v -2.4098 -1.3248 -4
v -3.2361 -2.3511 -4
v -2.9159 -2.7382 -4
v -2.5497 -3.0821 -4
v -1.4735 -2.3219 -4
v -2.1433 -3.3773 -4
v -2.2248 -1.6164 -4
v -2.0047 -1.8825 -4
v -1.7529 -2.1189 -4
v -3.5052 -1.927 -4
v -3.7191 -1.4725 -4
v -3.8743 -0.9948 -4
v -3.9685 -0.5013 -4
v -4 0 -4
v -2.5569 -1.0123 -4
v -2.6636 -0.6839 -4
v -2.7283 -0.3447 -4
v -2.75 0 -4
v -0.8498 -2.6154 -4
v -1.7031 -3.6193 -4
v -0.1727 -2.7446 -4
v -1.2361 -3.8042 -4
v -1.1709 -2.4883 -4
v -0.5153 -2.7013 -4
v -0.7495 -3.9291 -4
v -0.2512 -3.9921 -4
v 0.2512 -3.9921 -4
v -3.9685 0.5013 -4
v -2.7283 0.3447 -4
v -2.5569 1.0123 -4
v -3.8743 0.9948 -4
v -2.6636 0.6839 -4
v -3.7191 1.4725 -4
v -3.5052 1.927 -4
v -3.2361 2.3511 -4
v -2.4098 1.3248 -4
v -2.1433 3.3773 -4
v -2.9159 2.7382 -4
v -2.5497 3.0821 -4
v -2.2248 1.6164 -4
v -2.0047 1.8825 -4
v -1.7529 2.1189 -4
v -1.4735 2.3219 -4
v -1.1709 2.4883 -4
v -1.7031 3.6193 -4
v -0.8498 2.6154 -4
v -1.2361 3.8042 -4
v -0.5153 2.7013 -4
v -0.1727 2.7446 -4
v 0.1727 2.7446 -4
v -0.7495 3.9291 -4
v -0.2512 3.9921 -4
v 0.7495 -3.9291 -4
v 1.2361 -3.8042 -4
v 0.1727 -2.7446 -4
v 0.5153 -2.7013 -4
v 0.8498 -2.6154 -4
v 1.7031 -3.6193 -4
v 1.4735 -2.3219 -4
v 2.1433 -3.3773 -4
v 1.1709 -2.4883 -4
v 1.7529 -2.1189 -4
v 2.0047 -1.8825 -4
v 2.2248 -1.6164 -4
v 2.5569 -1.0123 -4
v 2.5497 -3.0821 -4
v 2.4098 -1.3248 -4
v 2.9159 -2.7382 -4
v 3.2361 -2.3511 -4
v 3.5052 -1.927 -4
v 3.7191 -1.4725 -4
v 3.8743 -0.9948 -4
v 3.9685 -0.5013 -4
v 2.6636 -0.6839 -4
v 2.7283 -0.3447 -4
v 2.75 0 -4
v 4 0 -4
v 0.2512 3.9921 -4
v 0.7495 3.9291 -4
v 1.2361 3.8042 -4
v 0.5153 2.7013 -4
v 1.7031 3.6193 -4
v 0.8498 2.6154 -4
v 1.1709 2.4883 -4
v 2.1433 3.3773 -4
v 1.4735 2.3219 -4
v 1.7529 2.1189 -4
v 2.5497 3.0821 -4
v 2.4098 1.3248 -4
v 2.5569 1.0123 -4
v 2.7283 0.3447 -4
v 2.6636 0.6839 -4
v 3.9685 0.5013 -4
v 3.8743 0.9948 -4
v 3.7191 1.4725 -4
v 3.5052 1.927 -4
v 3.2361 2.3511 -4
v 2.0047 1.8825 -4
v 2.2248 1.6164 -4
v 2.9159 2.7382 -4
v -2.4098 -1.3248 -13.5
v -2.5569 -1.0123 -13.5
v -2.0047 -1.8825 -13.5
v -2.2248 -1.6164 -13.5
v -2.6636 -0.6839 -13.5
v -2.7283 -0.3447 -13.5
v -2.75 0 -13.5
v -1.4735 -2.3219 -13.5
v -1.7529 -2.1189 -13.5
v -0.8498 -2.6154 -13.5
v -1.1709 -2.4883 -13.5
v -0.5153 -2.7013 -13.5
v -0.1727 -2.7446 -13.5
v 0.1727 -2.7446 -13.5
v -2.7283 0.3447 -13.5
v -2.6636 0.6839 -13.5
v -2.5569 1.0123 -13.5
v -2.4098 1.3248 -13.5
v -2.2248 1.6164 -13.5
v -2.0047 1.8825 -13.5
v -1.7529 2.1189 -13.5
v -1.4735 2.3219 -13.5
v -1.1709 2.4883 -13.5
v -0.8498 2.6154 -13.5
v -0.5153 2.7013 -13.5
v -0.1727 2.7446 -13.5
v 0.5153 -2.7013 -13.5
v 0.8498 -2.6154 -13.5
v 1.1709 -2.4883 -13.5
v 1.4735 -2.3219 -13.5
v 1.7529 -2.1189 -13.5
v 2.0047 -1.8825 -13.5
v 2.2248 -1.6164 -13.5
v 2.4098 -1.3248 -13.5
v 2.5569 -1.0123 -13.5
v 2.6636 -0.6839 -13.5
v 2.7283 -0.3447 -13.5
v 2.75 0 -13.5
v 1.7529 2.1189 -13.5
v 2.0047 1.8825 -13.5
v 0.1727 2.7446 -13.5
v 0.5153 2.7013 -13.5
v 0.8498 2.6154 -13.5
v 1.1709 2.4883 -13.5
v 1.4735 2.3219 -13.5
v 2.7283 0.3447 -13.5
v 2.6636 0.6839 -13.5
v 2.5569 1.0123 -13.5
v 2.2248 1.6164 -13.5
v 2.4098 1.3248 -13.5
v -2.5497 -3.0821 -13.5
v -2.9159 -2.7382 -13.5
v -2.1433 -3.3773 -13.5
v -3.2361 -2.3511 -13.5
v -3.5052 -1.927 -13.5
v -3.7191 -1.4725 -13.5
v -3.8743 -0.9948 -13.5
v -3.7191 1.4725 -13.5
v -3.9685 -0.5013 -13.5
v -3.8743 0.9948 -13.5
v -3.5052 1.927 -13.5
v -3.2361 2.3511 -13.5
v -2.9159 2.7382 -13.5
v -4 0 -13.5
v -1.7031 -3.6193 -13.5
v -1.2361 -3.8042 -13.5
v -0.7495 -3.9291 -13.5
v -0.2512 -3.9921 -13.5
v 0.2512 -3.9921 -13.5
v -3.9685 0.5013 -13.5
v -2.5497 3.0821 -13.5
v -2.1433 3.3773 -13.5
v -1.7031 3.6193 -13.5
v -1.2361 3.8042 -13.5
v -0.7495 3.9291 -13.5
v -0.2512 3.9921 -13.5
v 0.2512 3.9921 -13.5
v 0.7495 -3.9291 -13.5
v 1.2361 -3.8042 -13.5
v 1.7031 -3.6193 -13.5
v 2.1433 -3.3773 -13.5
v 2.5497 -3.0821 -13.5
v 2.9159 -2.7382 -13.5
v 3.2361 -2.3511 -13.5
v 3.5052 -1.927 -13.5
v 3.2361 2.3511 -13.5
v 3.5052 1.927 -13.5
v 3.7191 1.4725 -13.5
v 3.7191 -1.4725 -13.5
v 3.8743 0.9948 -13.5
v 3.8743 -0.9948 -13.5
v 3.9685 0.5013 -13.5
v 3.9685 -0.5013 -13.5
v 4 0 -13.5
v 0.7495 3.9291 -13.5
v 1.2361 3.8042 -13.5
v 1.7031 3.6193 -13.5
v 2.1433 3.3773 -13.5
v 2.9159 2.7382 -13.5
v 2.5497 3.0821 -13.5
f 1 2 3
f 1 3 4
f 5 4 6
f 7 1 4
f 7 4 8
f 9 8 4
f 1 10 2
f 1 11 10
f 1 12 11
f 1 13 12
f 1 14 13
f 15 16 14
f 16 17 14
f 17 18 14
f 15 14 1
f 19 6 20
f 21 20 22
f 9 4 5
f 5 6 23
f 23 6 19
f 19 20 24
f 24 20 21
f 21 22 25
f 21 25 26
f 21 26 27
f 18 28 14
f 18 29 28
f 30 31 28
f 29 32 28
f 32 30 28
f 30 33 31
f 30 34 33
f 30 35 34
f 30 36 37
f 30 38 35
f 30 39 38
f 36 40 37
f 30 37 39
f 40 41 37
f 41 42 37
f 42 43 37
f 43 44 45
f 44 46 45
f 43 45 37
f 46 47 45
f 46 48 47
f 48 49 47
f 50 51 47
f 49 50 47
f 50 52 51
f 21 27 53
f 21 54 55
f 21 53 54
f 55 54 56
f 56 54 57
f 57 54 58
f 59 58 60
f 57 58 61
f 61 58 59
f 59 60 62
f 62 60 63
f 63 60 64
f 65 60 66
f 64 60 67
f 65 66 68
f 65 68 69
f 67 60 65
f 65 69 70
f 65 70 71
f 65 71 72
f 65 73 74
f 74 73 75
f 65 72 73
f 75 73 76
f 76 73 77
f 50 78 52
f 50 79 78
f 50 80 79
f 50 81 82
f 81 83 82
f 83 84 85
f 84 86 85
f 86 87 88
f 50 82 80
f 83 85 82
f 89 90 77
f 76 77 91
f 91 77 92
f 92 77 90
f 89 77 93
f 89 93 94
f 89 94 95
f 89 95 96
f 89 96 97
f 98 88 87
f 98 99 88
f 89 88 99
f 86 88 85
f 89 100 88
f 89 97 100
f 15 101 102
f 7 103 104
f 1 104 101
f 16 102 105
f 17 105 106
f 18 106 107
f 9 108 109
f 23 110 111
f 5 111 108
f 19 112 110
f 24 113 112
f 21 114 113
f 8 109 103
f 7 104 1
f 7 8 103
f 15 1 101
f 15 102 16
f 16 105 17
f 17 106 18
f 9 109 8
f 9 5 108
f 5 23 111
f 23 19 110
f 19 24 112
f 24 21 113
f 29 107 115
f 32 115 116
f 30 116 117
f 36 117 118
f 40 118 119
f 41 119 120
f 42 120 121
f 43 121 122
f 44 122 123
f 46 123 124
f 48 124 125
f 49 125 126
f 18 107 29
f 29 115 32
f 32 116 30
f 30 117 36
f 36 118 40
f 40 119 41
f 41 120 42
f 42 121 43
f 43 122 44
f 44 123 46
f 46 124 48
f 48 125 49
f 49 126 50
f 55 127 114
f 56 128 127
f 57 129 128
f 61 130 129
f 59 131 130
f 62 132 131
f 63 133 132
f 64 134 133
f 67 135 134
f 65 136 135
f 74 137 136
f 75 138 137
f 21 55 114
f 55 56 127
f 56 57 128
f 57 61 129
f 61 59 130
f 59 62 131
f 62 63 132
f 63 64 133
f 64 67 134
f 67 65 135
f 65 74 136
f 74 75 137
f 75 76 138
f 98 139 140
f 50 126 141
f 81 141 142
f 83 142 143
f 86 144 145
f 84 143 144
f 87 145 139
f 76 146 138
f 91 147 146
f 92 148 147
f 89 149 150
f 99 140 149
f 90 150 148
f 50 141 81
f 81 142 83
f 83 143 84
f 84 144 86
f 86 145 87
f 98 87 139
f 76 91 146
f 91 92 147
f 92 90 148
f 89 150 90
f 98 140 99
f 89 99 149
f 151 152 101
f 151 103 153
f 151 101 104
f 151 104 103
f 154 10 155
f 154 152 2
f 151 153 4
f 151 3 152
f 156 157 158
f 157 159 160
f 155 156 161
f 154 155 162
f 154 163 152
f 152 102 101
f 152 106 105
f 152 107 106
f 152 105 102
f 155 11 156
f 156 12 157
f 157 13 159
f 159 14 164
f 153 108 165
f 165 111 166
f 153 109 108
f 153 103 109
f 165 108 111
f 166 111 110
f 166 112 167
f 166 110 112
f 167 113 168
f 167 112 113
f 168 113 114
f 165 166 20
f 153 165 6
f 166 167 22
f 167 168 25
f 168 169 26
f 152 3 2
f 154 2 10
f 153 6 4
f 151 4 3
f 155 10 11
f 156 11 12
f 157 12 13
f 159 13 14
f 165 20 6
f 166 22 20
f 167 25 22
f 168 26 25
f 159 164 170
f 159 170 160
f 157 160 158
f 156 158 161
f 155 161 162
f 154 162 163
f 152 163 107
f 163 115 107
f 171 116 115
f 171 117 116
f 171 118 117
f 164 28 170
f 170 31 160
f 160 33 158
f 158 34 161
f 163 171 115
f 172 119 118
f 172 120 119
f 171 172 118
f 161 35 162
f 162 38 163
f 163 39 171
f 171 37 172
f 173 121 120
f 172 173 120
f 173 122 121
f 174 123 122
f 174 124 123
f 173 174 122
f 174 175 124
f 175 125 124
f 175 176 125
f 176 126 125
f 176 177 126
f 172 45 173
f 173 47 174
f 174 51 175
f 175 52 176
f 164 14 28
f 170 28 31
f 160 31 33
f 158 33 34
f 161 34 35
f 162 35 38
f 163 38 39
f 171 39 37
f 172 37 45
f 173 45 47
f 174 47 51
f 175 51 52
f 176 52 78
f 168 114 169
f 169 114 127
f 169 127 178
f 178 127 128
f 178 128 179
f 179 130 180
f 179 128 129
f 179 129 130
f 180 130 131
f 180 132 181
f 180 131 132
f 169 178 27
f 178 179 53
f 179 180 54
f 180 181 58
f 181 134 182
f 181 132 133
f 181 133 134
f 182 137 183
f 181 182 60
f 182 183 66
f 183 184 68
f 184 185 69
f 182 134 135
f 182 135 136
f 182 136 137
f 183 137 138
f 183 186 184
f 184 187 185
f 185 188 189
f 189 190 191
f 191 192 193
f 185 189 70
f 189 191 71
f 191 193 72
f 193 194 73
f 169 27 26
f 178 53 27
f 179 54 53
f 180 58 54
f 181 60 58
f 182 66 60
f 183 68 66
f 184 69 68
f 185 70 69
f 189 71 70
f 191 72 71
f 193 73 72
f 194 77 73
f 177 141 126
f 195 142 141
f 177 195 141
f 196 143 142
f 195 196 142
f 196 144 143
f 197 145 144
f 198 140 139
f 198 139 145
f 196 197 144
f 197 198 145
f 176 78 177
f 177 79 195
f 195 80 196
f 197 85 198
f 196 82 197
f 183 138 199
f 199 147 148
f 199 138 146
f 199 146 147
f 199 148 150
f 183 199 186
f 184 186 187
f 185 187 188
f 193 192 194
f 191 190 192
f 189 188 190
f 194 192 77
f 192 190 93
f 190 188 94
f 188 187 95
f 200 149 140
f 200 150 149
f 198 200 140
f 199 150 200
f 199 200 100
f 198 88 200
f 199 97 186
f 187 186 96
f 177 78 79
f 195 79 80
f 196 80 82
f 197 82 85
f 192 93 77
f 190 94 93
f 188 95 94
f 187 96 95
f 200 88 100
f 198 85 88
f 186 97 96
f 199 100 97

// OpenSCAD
$fn = 50;

difference() {
	union() {
		translate(v = [0, 0, -13.5]) {
			cylinder(h = 16.5, r = 4.0);
		}
	}
	union() {
		translate(v = [0, 0, 0]) {
			rotate(a = [0, 0, 0]) {
				difference() {
					union() {
						translate(v = [0, 0, -4]) {
							linear_extrude(height = 4) {
								polygon(points = [[4.8468, 0.0], [2.4234000000000004, 4.197451927062417], [-2.423399999999999, 4.197451927062417], [-4.8468, 5.935618106107392e-16], [-2.423400000000002, -4.197451927062416], [2.423399999999997, -4.197451927062419]]);
							}
						}
					}
					union();
				}
			}
		}
		#cylinder(h = 3, r = 6.25);
		#translate(v = [0, 0, -100.0]) {
			cylinder(h = 200, r = 2.75);
		}
	}
}
